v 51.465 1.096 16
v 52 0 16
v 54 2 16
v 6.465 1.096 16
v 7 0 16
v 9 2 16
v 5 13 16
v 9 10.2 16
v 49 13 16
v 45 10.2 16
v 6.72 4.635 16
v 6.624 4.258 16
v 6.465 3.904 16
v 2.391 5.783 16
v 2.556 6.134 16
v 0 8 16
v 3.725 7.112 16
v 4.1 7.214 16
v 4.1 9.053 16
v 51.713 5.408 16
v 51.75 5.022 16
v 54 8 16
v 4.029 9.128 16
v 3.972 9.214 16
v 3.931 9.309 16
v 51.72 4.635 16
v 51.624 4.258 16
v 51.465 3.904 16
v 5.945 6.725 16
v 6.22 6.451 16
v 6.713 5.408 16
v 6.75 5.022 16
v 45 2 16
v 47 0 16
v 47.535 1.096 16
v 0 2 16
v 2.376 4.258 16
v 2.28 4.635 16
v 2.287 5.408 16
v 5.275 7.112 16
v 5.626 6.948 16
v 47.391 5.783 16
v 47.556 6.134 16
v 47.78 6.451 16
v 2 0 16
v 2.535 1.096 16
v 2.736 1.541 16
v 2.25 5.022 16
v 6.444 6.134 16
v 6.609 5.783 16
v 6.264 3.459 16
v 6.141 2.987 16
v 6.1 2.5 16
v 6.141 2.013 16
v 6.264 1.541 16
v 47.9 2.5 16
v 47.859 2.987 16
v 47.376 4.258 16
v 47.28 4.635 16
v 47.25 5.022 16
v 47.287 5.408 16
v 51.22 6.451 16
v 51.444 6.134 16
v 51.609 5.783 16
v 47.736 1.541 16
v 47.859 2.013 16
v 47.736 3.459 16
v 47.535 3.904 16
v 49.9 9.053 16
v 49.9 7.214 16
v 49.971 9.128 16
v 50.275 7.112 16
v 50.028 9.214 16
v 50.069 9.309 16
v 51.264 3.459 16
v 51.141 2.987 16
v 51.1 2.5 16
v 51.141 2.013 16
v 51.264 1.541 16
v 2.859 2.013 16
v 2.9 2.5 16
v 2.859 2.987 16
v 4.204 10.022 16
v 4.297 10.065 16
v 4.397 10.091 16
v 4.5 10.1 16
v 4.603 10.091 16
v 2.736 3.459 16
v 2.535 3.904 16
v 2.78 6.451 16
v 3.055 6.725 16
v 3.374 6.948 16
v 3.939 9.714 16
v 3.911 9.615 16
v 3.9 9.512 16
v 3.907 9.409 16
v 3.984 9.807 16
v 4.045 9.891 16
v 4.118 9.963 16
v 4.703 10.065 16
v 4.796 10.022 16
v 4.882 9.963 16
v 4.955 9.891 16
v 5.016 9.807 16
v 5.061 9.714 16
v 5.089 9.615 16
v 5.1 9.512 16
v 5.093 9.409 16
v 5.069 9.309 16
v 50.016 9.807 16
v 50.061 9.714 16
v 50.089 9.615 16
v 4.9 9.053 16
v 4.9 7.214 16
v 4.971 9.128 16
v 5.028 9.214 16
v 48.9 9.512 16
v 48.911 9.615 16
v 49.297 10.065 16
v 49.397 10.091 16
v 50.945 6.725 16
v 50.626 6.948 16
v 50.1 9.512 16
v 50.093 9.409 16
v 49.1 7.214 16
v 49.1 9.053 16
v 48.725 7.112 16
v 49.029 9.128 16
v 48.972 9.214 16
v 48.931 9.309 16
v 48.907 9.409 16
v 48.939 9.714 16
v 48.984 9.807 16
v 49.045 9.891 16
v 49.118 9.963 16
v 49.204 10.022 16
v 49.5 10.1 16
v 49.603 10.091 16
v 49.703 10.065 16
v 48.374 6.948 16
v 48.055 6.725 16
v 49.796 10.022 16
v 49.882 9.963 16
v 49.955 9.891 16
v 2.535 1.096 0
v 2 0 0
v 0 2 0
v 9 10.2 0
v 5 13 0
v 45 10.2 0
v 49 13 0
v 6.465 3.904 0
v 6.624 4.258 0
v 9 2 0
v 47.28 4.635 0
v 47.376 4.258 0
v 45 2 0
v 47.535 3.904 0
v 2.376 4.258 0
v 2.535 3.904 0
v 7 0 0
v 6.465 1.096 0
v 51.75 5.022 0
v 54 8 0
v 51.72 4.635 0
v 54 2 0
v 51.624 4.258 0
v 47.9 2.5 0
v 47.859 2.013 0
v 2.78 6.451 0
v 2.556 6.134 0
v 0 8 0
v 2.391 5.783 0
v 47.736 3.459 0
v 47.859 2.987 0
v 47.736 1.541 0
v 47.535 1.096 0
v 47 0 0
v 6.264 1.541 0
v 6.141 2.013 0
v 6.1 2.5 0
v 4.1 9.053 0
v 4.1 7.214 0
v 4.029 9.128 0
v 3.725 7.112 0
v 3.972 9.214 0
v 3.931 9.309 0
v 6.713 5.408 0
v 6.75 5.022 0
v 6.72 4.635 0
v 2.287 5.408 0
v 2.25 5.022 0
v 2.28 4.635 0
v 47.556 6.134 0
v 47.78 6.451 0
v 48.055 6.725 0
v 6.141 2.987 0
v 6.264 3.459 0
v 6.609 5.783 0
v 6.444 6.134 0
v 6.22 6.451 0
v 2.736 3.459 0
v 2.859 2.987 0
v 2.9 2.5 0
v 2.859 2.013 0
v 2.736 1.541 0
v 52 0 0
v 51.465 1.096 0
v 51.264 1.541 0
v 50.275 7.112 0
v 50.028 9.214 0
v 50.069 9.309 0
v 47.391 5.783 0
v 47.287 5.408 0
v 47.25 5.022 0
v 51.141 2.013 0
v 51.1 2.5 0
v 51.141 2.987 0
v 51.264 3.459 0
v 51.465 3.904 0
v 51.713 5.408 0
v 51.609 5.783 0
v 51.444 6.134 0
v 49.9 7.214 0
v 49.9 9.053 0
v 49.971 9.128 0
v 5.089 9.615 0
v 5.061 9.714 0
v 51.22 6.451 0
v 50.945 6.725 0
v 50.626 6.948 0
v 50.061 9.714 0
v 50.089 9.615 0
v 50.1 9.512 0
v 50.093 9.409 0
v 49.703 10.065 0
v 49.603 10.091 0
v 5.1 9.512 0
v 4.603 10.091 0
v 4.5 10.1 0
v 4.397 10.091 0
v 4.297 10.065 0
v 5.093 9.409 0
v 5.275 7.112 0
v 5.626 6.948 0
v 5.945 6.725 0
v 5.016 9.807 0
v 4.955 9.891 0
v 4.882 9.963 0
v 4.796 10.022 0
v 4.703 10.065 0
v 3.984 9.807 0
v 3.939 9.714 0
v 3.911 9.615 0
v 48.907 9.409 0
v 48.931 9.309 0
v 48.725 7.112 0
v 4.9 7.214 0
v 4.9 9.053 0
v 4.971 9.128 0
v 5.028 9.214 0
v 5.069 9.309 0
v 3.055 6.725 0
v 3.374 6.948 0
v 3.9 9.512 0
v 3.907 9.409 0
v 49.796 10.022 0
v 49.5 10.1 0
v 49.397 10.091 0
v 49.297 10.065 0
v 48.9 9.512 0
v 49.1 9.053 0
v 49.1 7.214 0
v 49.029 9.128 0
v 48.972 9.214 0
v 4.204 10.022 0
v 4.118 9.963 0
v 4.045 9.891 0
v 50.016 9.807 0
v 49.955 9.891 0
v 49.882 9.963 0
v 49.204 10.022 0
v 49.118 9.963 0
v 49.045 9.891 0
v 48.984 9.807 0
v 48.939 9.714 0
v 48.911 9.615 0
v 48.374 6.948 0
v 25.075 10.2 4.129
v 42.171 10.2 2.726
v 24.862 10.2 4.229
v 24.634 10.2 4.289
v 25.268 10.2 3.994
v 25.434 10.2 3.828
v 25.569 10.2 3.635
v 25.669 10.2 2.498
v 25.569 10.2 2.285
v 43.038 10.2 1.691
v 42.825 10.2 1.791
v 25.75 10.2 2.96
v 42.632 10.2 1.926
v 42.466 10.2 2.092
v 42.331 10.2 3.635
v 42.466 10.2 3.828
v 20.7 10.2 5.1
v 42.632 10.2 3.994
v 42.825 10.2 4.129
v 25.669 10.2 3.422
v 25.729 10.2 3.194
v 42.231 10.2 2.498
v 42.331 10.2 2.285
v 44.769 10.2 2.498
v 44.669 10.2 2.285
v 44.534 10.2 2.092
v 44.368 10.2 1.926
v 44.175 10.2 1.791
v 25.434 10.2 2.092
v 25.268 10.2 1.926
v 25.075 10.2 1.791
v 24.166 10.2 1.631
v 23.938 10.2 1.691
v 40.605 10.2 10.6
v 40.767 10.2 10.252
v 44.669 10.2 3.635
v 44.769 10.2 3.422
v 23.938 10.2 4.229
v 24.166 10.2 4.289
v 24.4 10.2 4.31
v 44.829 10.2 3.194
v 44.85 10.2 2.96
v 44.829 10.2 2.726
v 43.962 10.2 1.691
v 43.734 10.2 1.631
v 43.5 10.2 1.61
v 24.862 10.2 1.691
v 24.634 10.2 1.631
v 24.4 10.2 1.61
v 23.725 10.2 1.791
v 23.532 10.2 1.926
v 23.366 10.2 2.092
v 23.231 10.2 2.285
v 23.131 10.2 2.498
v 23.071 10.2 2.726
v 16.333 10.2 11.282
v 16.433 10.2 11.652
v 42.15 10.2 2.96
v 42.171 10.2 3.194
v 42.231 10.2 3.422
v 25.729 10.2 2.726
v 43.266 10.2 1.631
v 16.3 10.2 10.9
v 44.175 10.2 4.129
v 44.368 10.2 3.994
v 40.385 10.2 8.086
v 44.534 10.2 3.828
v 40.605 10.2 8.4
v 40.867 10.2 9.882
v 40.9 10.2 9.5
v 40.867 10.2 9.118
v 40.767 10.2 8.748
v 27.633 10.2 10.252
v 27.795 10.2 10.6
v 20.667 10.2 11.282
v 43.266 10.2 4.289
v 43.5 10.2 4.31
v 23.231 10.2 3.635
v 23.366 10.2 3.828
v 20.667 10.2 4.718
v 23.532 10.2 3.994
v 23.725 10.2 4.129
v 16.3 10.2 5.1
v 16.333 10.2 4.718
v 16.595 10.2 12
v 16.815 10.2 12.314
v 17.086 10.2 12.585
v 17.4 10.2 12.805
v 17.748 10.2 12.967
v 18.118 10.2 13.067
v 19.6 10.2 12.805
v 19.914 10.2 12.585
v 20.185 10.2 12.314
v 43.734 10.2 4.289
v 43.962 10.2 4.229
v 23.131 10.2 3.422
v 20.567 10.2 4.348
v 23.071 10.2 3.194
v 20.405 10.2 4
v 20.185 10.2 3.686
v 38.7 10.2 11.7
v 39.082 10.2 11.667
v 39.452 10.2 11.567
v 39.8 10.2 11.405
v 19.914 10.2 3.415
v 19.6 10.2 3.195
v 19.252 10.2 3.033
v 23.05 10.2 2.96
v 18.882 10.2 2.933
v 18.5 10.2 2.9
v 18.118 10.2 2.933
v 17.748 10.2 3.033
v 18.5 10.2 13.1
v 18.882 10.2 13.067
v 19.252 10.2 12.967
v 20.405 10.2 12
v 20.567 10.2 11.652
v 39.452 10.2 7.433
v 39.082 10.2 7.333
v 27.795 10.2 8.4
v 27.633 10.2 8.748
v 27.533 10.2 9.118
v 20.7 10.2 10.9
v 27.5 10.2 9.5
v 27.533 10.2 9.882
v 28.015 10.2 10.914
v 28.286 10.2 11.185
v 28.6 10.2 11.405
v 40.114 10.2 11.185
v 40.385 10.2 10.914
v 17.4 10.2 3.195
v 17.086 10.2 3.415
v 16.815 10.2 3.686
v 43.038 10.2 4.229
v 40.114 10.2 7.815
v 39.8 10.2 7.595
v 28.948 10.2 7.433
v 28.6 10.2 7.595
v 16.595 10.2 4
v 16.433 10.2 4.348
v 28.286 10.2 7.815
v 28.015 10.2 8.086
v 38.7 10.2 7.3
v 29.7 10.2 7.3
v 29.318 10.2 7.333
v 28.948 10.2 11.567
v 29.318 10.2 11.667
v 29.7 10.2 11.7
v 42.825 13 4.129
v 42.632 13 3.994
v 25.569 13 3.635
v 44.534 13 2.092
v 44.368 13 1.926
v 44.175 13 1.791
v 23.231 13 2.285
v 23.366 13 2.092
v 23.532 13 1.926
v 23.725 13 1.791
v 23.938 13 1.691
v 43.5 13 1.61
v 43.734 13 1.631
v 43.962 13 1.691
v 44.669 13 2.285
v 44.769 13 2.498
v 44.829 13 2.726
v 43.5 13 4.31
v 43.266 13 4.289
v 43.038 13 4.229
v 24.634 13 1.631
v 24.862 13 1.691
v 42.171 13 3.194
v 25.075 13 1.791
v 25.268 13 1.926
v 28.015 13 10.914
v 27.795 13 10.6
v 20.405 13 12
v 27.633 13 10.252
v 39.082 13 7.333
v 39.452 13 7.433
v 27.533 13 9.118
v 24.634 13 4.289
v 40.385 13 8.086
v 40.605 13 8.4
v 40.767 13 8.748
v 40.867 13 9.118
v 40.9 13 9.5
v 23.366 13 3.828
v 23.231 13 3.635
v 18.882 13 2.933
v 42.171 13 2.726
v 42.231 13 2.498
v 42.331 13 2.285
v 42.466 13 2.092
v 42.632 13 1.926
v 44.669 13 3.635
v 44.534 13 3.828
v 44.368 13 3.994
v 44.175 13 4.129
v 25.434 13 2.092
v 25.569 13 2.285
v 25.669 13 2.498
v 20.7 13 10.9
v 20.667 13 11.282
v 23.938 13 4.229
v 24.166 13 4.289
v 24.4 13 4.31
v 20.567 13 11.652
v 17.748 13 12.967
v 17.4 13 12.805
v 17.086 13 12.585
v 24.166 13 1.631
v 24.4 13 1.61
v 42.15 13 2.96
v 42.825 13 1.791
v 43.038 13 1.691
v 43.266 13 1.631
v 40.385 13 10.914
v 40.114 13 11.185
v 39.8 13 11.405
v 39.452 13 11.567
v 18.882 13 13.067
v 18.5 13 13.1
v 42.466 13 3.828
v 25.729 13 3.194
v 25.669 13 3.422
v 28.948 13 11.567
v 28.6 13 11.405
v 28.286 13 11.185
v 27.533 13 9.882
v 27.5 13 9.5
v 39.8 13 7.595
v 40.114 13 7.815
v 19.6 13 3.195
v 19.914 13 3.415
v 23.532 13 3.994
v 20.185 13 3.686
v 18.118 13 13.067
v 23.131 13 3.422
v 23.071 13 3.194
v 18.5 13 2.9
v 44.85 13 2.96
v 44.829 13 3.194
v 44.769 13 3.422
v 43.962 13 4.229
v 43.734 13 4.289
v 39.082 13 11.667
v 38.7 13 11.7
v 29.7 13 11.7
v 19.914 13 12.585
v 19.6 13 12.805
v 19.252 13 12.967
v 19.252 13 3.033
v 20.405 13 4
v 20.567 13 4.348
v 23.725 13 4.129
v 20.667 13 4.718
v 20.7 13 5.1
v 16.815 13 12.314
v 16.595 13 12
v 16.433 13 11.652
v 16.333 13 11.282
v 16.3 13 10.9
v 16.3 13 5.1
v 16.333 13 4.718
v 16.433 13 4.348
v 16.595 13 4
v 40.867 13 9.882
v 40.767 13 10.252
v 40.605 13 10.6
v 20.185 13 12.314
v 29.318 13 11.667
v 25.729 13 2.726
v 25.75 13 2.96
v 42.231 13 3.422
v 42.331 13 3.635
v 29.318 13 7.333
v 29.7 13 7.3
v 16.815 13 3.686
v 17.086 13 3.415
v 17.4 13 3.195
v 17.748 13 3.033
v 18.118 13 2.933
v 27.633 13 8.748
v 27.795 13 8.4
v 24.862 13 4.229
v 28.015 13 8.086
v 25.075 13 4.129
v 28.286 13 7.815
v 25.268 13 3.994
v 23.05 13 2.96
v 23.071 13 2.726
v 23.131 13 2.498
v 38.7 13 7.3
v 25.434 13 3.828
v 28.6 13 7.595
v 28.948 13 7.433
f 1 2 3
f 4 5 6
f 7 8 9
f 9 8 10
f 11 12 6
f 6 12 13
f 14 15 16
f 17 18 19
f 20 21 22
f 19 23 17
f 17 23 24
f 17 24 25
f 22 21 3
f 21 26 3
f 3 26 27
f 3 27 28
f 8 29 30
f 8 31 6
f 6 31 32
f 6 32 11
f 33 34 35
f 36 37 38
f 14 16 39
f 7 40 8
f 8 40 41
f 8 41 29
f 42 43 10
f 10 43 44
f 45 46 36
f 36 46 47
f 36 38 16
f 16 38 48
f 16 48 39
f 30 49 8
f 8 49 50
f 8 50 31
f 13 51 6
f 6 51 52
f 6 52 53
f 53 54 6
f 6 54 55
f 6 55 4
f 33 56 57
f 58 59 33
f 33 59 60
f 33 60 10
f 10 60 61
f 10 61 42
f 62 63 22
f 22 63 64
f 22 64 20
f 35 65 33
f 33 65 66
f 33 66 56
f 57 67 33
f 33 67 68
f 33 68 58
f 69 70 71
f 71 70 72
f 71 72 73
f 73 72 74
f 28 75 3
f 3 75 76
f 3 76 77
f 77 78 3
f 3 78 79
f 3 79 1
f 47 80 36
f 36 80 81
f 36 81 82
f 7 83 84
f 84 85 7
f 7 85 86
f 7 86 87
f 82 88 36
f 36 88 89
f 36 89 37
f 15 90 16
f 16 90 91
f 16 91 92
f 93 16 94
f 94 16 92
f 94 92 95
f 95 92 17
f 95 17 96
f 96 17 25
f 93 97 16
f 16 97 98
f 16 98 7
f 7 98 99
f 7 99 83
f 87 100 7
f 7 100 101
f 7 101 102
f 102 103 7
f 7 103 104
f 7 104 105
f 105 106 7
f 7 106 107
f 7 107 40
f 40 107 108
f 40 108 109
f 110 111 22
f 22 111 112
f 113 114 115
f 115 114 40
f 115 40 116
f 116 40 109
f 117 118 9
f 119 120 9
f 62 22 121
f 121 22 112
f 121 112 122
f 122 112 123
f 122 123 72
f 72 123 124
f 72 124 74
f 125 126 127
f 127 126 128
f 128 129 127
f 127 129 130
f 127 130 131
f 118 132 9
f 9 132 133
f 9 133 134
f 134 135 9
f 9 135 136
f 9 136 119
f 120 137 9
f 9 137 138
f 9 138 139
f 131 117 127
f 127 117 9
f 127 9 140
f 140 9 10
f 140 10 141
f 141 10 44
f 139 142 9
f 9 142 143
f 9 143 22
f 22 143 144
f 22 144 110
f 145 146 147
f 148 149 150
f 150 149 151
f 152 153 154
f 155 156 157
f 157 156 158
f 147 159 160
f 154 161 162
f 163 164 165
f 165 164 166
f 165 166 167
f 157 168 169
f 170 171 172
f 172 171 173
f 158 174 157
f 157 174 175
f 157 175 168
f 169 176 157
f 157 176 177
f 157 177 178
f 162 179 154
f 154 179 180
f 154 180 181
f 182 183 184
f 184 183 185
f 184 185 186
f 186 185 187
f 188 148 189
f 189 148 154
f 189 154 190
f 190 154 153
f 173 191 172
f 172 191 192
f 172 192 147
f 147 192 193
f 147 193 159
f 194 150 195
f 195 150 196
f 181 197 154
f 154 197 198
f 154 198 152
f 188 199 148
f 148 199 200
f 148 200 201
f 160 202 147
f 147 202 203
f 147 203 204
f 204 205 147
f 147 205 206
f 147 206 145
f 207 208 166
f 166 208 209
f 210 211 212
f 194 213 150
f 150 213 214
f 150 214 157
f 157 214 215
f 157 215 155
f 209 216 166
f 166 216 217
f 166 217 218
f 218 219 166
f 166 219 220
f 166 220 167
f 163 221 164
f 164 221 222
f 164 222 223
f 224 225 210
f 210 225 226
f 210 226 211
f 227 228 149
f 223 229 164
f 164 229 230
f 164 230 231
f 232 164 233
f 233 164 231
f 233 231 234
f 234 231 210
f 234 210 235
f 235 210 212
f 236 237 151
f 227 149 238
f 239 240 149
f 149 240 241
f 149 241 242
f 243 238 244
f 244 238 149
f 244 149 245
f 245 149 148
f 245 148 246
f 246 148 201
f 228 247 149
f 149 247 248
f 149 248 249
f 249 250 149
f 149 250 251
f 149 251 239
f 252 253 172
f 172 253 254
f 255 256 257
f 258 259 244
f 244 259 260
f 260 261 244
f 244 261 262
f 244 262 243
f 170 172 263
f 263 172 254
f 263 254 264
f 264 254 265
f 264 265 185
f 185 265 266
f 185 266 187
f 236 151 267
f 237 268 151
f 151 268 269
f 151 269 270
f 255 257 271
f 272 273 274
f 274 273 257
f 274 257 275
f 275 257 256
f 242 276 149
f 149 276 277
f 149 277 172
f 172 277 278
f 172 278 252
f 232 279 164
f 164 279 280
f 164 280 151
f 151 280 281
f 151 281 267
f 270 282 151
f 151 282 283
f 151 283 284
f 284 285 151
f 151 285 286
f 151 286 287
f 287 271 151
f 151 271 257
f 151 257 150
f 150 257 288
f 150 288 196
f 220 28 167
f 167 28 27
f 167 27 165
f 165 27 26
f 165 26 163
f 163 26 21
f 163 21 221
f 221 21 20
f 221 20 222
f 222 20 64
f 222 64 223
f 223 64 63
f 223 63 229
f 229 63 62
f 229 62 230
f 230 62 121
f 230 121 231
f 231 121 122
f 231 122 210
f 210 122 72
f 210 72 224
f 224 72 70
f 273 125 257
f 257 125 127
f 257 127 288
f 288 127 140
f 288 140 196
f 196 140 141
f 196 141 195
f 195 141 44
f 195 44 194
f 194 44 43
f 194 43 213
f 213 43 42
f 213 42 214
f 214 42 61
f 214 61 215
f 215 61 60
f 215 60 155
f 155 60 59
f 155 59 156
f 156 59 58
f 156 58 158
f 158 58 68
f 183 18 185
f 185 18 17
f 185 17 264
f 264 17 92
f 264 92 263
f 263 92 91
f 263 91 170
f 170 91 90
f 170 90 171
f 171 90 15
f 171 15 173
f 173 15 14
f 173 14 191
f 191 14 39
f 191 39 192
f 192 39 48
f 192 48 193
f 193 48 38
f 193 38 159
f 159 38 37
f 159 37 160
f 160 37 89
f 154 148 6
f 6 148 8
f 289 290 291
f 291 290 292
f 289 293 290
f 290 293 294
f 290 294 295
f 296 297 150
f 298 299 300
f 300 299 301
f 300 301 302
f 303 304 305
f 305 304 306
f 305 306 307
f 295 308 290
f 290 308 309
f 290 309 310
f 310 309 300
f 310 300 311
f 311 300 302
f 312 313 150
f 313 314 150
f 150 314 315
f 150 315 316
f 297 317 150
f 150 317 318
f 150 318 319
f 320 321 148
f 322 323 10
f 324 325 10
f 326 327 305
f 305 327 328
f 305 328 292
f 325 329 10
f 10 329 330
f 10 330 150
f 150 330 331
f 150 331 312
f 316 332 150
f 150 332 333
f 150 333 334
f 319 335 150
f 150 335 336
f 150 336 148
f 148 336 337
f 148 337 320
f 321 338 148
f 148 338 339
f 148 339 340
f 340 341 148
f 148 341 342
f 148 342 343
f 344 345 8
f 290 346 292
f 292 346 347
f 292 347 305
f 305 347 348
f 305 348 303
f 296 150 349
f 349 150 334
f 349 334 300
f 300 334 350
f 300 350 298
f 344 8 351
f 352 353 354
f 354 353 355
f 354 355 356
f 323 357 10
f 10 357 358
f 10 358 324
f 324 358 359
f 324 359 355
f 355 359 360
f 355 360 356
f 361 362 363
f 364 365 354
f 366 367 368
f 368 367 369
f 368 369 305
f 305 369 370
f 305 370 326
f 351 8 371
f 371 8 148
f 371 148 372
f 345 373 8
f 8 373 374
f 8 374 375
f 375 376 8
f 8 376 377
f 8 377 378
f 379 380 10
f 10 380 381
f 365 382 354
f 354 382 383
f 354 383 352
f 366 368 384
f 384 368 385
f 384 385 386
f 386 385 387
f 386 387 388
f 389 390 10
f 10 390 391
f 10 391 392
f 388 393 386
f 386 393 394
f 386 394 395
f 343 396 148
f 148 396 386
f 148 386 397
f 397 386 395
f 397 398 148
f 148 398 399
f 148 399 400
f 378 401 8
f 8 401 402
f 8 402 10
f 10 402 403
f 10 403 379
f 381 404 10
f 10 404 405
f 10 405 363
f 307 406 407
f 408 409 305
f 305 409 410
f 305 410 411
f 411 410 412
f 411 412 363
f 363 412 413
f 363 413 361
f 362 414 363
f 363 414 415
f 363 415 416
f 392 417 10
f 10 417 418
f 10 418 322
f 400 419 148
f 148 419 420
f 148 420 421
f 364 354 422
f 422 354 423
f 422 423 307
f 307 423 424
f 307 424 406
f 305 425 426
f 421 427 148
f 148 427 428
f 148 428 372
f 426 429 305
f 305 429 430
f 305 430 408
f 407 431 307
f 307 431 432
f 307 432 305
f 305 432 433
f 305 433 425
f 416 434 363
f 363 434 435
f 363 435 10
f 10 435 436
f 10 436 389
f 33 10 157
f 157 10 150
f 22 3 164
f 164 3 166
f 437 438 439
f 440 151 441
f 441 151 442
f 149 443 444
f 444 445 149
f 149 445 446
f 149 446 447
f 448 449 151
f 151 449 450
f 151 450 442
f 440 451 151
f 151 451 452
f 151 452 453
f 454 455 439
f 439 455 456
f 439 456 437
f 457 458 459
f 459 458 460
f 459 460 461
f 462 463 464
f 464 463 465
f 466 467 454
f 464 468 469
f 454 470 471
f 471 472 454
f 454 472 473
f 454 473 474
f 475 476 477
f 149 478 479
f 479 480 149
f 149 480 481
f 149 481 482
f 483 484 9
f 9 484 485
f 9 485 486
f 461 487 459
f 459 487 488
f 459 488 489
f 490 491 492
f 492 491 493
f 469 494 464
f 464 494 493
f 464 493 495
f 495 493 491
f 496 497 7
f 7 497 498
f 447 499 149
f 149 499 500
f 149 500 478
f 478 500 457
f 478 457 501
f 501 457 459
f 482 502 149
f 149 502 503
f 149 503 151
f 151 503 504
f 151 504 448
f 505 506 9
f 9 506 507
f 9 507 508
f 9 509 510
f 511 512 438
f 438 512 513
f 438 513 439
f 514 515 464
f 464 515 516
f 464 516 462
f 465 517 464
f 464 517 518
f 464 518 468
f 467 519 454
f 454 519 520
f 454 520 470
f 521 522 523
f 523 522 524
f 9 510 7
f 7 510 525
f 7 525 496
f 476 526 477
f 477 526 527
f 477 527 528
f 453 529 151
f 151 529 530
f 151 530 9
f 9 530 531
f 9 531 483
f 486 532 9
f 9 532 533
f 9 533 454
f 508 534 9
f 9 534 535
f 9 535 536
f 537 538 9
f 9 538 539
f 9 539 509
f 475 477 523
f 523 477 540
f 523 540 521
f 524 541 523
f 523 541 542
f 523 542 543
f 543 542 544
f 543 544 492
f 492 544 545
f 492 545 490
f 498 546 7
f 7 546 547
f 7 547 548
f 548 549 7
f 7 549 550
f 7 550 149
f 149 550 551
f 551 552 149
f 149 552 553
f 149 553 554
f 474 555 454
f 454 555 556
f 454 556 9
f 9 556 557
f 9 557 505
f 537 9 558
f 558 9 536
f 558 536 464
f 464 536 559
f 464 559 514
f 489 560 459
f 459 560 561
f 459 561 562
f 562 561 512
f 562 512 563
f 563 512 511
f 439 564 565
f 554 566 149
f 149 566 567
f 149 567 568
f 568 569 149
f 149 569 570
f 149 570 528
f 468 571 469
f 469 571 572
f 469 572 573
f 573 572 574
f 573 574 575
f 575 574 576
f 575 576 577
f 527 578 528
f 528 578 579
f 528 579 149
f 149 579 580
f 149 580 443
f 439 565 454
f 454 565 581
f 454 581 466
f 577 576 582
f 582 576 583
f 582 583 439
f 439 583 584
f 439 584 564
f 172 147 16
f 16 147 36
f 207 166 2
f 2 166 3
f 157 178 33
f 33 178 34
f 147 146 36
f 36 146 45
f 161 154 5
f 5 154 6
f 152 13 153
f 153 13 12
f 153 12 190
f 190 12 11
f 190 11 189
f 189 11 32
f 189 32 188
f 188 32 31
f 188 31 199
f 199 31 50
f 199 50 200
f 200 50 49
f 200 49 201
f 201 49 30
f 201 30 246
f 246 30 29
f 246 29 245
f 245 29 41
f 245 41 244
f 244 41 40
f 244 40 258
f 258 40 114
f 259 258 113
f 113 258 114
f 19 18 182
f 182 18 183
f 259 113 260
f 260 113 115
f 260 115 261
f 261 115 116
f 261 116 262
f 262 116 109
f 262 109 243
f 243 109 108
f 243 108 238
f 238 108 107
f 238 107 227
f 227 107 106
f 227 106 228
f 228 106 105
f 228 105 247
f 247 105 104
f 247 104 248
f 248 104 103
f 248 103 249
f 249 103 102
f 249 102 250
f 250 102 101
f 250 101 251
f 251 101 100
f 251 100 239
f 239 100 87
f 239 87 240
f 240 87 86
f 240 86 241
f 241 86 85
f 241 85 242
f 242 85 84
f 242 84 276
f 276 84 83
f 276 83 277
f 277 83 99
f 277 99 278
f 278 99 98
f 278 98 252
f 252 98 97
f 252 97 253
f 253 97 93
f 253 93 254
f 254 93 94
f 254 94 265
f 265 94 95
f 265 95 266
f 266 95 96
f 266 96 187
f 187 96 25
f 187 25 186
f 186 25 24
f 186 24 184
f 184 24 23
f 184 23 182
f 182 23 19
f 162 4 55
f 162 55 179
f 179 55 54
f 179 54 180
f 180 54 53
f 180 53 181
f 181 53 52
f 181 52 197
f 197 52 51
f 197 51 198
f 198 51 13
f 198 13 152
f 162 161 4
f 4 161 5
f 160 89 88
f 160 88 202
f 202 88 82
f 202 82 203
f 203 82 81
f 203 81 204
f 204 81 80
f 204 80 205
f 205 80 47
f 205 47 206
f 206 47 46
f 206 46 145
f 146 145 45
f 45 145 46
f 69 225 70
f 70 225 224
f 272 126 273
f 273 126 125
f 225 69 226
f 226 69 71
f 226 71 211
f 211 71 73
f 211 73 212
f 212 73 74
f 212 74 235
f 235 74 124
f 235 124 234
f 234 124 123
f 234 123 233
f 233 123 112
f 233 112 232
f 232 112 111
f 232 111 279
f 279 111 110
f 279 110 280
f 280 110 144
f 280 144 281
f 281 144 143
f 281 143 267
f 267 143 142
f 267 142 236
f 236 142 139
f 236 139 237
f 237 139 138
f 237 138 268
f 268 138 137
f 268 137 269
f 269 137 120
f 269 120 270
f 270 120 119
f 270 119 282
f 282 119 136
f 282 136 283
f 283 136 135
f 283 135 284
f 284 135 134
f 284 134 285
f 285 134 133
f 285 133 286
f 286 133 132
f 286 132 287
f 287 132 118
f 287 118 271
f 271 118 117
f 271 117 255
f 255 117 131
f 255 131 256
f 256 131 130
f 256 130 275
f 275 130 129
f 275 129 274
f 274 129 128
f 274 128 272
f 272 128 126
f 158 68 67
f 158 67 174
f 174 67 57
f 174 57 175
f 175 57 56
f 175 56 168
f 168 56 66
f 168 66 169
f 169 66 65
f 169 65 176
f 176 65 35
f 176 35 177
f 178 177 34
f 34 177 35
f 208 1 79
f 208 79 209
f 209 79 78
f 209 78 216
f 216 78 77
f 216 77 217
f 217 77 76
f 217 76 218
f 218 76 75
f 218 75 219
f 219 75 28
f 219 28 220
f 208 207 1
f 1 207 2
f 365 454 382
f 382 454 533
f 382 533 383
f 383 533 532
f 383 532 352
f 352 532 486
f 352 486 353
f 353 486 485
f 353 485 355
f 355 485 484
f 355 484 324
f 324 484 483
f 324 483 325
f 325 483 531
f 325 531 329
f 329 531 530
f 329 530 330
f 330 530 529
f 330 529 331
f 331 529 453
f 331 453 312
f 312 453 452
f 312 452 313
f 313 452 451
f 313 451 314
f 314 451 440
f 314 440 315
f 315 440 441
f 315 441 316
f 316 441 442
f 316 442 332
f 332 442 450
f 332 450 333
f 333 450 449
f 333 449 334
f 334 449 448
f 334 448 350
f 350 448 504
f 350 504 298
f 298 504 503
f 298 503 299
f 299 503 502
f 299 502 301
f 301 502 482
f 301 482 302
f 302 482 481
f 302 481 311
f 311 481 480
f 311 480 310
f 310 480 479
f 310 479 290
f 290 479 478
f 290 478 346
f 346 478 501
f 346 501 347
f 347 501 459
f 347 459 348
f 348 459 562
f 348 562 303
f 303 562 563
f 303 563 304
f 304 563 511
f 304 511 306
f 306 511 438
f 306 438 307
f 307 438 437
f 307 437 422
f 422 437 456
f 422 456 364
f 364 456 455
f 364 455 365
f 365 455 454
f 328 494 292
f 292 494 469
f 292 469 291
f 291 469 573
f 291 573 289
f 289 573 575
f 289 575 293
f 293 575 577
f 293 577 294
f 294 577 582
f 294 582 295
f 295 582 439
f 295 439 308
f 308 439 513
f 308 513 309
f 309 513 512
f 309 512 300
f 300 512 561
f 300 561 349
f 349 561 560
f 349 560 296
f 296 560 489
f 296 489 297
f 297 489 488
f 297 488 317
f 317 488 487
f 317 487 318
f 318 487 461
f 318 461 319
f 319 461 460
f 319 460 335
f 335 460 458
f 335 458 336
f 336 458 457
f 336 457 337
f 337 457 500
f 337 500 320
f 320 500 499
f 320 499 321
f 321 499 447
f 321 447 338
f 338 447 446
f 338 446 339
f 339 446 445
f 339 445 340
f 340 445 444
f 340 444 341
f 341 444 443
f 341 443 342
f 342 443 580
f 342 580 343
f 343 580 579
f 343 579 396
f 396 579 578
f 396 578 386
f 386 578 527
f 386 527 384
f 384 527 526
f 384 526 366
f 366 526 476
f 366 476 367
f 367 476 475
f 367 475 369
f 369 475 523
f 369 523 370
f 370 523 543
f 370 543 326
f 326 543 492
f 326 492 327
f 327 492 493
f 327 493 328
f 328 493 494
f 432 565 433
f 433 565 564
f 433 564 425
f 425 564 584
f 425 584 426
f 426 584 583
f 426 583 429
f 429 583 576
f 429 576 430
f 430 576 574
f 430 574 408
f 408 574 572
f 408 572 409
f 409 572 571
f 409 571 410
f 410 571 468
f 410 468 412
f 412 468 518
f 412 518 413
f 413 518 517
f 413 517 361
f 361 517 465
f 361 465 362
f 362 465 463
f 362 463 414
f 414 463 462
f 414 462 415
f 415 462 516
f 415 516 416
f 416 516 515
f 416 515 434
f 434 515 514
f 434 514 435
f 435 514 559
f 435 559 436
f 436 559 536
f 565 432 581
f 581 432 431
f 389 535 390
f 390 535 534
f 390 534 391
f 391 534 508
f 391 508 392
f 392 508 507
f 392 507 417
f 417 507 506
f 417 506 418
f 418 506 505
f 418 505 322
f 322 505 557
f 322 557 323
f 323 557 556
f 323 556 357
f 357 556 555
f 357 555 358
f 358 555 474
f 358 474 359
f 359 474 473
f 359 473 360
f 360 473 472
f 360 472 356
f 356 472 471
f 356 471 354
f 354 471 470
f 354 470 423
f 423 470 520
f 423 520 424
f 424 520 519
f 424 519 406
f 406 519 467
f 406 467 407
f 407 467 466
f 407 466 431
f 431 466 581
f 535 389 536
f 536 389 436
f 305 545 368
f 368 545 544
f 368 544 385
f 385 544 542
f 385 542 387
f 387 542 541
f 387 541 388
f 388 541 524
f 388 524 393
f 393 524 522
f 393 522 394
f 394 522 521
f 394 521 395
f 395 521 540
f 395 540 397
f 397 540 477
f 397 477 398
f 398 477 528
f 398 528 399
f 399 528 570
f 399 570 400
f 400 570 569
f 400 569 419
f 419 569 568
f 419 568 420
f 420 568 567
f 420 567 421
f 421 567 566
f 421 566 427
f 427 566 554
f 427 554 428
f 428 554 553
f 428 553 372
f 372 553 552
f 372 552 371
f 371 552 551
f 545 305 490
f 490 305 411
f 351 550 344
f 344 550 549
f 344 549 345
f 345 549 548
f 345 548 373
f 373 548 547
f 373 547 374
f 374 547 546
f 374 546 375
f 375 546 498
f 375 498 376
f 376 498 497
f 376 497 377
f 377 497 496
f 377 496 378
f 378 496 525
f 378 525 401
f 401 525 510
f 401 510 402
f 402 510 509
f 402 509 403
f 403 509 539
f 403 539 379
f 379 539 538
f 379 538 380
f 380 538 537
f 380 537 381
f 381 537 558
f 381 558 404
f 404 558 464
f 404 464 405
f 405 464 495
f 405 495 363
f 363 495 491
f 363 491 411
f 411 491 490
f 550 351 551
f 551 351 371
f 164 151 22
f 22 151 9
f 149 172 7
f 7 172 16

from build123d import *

# Parameters (mm, degrees)
BOSS_EXTRUDE1_DEPTH = 16
CHAMFER1_SIZE       = 2
SKETCH2_R           = 2.25
CUT_EXTRUDE1_DEPTH  = 16
CUT_EXTRUDE2_DEPTH  = 16
SKETCH5_R           = 1.35
CUT_EXTRUDE3_DEPTH  = 16
CHAMFER3_SIZE       = 5


with BuildPart() as part:
    # Sketch1 → Boss-Extrude1 (new body)
    with BuildSketch(Plane.XY):
        Polygon((0, 0), (0, 13), (54, 13), (54, 0), (45, 0), (45, 10.2), (9, 10.2), (9, 0), align=None)
    extrude(amount=BOSS_EXTRUDE1_DEPTH)

    # Chamfer1
    chamfer1_edges = [part.edges().sort_by_distance(p)[0] for p in [
        (0, 0, 8),
        (54, 0, 8),
        (45, 0, 8),
        (9, 0, 8),
    ]]
    chamfer(chamfer1_edges, length=CHAMFER1_SIZE)

    # Sketch2 → Cut-Extrude1 (cut)
    with BuildSketch(Plane.XY.offset(16)):
        with Locations((4.5, 5)):
            Circle(SKETCH2_R)
        with Locations((49.5, 5)):
            Circle(SKETCH2_R)
    extrude(amount=-CUT_EXTRUDE1_DEPTH, mode=Mode.SUBTRACT)

    # Sketch3 → Cut-Extrude2 (cut)
    with BuildSketch(Plane.XY.offset(16)):
        with BuildLine():
            Line((2.534938179, 3.904083927), (6.465061821, 3.904083927))
            ThreePointArc((6.465061821, 3.904083927), (6.1, 2.5), (6.465061821, 1.095916073))
            Line((6.465061821, 1.095916073), (7, 0))
            Line((7, 0), (2, 0))
            Line((2, 0), (2.534938179, 1.095916073))
            ThreePointArc((2.534938179, 1.095916073), (2.9, 2.5), (2.534938179, 3.904083927))
        make_face()
        with BuildLine():
            Line((4.1, 9.052786405), (4.1, 6.794596967))
            Line((4.1, 6.794596967), (4.9, 6.794596967))
            Line((4.9, 6.794596967), (4.9, 9.052786405))
            ThreePointArc((4.9, 9.052786405), (4.5, 10.1), (4.1, 9.052786405))
        make_face()
    cut_extrude2 = extrude(amount=-CUT_EXTRUDE2_DEPTH, mode=Mode.SUBTRACT)

    # Mirror1: Cut-Extrude2 across plane
    add(cut_extrude2.mirror(Plane(origin=(27, 0, 0), x_dir=(0, 0, 1), z_dir=(1, 0, 0))), mode=Mode.SUBTRACT)

    # Sketch5 → Cut-Extrude3 (cut)
    with BuildSketch(Plane(origin=(0, 13, 0), x_dir=(1, 0, 0), z_dir=(0, 1, 0))):
        with Locations(Location((24.4, -2.96, 0), (0, 0, 270))):
            Circle(SKETCH5_R)
        with Locations(Location((43.5, -2.96, 0), (0, 0, 270))):
            Circle(SKETCH5_R)
        with BuildLine():
            Line((20.7, -5.1), (20.7, -10.9))
            ThreePointArc((20.7, -10.9), (18.5, -13.1), (16.3, -10.9))
            Line((16.3, -10.9), (16.3, -5.1))
            ThreePointArc((16.3, -5.1), (18.5, -2.9), (20.7, -5.1))
        make_face()
        with BuildLine():
            Line((29.7, -7.3), (38.7, -7.3))
            ThreePointArc((38.7, -7.3), (40.9, -9.5), (38.7, -11.7))
            Line((38.7, -11.7), (29.7, -11.7))
            ThreePointArc((29.7, -11.7), (27.5, -9.5), (29.7, -7.3))
        make_face()
    extrude(amount=-CUT_EXTRUDE3_DEPTH, mode=Mode.SUBTRACT)

    # Chamfer3
    chamfer3_edges = [part.edges().sort_by_distance(p)[0] for p in [
        (0, 13, 8),
        (54, 13, 8),
    ]]
    chamfer(chamfer3_edges, length=CHAMFER3_SIZE)


solid = part.part
